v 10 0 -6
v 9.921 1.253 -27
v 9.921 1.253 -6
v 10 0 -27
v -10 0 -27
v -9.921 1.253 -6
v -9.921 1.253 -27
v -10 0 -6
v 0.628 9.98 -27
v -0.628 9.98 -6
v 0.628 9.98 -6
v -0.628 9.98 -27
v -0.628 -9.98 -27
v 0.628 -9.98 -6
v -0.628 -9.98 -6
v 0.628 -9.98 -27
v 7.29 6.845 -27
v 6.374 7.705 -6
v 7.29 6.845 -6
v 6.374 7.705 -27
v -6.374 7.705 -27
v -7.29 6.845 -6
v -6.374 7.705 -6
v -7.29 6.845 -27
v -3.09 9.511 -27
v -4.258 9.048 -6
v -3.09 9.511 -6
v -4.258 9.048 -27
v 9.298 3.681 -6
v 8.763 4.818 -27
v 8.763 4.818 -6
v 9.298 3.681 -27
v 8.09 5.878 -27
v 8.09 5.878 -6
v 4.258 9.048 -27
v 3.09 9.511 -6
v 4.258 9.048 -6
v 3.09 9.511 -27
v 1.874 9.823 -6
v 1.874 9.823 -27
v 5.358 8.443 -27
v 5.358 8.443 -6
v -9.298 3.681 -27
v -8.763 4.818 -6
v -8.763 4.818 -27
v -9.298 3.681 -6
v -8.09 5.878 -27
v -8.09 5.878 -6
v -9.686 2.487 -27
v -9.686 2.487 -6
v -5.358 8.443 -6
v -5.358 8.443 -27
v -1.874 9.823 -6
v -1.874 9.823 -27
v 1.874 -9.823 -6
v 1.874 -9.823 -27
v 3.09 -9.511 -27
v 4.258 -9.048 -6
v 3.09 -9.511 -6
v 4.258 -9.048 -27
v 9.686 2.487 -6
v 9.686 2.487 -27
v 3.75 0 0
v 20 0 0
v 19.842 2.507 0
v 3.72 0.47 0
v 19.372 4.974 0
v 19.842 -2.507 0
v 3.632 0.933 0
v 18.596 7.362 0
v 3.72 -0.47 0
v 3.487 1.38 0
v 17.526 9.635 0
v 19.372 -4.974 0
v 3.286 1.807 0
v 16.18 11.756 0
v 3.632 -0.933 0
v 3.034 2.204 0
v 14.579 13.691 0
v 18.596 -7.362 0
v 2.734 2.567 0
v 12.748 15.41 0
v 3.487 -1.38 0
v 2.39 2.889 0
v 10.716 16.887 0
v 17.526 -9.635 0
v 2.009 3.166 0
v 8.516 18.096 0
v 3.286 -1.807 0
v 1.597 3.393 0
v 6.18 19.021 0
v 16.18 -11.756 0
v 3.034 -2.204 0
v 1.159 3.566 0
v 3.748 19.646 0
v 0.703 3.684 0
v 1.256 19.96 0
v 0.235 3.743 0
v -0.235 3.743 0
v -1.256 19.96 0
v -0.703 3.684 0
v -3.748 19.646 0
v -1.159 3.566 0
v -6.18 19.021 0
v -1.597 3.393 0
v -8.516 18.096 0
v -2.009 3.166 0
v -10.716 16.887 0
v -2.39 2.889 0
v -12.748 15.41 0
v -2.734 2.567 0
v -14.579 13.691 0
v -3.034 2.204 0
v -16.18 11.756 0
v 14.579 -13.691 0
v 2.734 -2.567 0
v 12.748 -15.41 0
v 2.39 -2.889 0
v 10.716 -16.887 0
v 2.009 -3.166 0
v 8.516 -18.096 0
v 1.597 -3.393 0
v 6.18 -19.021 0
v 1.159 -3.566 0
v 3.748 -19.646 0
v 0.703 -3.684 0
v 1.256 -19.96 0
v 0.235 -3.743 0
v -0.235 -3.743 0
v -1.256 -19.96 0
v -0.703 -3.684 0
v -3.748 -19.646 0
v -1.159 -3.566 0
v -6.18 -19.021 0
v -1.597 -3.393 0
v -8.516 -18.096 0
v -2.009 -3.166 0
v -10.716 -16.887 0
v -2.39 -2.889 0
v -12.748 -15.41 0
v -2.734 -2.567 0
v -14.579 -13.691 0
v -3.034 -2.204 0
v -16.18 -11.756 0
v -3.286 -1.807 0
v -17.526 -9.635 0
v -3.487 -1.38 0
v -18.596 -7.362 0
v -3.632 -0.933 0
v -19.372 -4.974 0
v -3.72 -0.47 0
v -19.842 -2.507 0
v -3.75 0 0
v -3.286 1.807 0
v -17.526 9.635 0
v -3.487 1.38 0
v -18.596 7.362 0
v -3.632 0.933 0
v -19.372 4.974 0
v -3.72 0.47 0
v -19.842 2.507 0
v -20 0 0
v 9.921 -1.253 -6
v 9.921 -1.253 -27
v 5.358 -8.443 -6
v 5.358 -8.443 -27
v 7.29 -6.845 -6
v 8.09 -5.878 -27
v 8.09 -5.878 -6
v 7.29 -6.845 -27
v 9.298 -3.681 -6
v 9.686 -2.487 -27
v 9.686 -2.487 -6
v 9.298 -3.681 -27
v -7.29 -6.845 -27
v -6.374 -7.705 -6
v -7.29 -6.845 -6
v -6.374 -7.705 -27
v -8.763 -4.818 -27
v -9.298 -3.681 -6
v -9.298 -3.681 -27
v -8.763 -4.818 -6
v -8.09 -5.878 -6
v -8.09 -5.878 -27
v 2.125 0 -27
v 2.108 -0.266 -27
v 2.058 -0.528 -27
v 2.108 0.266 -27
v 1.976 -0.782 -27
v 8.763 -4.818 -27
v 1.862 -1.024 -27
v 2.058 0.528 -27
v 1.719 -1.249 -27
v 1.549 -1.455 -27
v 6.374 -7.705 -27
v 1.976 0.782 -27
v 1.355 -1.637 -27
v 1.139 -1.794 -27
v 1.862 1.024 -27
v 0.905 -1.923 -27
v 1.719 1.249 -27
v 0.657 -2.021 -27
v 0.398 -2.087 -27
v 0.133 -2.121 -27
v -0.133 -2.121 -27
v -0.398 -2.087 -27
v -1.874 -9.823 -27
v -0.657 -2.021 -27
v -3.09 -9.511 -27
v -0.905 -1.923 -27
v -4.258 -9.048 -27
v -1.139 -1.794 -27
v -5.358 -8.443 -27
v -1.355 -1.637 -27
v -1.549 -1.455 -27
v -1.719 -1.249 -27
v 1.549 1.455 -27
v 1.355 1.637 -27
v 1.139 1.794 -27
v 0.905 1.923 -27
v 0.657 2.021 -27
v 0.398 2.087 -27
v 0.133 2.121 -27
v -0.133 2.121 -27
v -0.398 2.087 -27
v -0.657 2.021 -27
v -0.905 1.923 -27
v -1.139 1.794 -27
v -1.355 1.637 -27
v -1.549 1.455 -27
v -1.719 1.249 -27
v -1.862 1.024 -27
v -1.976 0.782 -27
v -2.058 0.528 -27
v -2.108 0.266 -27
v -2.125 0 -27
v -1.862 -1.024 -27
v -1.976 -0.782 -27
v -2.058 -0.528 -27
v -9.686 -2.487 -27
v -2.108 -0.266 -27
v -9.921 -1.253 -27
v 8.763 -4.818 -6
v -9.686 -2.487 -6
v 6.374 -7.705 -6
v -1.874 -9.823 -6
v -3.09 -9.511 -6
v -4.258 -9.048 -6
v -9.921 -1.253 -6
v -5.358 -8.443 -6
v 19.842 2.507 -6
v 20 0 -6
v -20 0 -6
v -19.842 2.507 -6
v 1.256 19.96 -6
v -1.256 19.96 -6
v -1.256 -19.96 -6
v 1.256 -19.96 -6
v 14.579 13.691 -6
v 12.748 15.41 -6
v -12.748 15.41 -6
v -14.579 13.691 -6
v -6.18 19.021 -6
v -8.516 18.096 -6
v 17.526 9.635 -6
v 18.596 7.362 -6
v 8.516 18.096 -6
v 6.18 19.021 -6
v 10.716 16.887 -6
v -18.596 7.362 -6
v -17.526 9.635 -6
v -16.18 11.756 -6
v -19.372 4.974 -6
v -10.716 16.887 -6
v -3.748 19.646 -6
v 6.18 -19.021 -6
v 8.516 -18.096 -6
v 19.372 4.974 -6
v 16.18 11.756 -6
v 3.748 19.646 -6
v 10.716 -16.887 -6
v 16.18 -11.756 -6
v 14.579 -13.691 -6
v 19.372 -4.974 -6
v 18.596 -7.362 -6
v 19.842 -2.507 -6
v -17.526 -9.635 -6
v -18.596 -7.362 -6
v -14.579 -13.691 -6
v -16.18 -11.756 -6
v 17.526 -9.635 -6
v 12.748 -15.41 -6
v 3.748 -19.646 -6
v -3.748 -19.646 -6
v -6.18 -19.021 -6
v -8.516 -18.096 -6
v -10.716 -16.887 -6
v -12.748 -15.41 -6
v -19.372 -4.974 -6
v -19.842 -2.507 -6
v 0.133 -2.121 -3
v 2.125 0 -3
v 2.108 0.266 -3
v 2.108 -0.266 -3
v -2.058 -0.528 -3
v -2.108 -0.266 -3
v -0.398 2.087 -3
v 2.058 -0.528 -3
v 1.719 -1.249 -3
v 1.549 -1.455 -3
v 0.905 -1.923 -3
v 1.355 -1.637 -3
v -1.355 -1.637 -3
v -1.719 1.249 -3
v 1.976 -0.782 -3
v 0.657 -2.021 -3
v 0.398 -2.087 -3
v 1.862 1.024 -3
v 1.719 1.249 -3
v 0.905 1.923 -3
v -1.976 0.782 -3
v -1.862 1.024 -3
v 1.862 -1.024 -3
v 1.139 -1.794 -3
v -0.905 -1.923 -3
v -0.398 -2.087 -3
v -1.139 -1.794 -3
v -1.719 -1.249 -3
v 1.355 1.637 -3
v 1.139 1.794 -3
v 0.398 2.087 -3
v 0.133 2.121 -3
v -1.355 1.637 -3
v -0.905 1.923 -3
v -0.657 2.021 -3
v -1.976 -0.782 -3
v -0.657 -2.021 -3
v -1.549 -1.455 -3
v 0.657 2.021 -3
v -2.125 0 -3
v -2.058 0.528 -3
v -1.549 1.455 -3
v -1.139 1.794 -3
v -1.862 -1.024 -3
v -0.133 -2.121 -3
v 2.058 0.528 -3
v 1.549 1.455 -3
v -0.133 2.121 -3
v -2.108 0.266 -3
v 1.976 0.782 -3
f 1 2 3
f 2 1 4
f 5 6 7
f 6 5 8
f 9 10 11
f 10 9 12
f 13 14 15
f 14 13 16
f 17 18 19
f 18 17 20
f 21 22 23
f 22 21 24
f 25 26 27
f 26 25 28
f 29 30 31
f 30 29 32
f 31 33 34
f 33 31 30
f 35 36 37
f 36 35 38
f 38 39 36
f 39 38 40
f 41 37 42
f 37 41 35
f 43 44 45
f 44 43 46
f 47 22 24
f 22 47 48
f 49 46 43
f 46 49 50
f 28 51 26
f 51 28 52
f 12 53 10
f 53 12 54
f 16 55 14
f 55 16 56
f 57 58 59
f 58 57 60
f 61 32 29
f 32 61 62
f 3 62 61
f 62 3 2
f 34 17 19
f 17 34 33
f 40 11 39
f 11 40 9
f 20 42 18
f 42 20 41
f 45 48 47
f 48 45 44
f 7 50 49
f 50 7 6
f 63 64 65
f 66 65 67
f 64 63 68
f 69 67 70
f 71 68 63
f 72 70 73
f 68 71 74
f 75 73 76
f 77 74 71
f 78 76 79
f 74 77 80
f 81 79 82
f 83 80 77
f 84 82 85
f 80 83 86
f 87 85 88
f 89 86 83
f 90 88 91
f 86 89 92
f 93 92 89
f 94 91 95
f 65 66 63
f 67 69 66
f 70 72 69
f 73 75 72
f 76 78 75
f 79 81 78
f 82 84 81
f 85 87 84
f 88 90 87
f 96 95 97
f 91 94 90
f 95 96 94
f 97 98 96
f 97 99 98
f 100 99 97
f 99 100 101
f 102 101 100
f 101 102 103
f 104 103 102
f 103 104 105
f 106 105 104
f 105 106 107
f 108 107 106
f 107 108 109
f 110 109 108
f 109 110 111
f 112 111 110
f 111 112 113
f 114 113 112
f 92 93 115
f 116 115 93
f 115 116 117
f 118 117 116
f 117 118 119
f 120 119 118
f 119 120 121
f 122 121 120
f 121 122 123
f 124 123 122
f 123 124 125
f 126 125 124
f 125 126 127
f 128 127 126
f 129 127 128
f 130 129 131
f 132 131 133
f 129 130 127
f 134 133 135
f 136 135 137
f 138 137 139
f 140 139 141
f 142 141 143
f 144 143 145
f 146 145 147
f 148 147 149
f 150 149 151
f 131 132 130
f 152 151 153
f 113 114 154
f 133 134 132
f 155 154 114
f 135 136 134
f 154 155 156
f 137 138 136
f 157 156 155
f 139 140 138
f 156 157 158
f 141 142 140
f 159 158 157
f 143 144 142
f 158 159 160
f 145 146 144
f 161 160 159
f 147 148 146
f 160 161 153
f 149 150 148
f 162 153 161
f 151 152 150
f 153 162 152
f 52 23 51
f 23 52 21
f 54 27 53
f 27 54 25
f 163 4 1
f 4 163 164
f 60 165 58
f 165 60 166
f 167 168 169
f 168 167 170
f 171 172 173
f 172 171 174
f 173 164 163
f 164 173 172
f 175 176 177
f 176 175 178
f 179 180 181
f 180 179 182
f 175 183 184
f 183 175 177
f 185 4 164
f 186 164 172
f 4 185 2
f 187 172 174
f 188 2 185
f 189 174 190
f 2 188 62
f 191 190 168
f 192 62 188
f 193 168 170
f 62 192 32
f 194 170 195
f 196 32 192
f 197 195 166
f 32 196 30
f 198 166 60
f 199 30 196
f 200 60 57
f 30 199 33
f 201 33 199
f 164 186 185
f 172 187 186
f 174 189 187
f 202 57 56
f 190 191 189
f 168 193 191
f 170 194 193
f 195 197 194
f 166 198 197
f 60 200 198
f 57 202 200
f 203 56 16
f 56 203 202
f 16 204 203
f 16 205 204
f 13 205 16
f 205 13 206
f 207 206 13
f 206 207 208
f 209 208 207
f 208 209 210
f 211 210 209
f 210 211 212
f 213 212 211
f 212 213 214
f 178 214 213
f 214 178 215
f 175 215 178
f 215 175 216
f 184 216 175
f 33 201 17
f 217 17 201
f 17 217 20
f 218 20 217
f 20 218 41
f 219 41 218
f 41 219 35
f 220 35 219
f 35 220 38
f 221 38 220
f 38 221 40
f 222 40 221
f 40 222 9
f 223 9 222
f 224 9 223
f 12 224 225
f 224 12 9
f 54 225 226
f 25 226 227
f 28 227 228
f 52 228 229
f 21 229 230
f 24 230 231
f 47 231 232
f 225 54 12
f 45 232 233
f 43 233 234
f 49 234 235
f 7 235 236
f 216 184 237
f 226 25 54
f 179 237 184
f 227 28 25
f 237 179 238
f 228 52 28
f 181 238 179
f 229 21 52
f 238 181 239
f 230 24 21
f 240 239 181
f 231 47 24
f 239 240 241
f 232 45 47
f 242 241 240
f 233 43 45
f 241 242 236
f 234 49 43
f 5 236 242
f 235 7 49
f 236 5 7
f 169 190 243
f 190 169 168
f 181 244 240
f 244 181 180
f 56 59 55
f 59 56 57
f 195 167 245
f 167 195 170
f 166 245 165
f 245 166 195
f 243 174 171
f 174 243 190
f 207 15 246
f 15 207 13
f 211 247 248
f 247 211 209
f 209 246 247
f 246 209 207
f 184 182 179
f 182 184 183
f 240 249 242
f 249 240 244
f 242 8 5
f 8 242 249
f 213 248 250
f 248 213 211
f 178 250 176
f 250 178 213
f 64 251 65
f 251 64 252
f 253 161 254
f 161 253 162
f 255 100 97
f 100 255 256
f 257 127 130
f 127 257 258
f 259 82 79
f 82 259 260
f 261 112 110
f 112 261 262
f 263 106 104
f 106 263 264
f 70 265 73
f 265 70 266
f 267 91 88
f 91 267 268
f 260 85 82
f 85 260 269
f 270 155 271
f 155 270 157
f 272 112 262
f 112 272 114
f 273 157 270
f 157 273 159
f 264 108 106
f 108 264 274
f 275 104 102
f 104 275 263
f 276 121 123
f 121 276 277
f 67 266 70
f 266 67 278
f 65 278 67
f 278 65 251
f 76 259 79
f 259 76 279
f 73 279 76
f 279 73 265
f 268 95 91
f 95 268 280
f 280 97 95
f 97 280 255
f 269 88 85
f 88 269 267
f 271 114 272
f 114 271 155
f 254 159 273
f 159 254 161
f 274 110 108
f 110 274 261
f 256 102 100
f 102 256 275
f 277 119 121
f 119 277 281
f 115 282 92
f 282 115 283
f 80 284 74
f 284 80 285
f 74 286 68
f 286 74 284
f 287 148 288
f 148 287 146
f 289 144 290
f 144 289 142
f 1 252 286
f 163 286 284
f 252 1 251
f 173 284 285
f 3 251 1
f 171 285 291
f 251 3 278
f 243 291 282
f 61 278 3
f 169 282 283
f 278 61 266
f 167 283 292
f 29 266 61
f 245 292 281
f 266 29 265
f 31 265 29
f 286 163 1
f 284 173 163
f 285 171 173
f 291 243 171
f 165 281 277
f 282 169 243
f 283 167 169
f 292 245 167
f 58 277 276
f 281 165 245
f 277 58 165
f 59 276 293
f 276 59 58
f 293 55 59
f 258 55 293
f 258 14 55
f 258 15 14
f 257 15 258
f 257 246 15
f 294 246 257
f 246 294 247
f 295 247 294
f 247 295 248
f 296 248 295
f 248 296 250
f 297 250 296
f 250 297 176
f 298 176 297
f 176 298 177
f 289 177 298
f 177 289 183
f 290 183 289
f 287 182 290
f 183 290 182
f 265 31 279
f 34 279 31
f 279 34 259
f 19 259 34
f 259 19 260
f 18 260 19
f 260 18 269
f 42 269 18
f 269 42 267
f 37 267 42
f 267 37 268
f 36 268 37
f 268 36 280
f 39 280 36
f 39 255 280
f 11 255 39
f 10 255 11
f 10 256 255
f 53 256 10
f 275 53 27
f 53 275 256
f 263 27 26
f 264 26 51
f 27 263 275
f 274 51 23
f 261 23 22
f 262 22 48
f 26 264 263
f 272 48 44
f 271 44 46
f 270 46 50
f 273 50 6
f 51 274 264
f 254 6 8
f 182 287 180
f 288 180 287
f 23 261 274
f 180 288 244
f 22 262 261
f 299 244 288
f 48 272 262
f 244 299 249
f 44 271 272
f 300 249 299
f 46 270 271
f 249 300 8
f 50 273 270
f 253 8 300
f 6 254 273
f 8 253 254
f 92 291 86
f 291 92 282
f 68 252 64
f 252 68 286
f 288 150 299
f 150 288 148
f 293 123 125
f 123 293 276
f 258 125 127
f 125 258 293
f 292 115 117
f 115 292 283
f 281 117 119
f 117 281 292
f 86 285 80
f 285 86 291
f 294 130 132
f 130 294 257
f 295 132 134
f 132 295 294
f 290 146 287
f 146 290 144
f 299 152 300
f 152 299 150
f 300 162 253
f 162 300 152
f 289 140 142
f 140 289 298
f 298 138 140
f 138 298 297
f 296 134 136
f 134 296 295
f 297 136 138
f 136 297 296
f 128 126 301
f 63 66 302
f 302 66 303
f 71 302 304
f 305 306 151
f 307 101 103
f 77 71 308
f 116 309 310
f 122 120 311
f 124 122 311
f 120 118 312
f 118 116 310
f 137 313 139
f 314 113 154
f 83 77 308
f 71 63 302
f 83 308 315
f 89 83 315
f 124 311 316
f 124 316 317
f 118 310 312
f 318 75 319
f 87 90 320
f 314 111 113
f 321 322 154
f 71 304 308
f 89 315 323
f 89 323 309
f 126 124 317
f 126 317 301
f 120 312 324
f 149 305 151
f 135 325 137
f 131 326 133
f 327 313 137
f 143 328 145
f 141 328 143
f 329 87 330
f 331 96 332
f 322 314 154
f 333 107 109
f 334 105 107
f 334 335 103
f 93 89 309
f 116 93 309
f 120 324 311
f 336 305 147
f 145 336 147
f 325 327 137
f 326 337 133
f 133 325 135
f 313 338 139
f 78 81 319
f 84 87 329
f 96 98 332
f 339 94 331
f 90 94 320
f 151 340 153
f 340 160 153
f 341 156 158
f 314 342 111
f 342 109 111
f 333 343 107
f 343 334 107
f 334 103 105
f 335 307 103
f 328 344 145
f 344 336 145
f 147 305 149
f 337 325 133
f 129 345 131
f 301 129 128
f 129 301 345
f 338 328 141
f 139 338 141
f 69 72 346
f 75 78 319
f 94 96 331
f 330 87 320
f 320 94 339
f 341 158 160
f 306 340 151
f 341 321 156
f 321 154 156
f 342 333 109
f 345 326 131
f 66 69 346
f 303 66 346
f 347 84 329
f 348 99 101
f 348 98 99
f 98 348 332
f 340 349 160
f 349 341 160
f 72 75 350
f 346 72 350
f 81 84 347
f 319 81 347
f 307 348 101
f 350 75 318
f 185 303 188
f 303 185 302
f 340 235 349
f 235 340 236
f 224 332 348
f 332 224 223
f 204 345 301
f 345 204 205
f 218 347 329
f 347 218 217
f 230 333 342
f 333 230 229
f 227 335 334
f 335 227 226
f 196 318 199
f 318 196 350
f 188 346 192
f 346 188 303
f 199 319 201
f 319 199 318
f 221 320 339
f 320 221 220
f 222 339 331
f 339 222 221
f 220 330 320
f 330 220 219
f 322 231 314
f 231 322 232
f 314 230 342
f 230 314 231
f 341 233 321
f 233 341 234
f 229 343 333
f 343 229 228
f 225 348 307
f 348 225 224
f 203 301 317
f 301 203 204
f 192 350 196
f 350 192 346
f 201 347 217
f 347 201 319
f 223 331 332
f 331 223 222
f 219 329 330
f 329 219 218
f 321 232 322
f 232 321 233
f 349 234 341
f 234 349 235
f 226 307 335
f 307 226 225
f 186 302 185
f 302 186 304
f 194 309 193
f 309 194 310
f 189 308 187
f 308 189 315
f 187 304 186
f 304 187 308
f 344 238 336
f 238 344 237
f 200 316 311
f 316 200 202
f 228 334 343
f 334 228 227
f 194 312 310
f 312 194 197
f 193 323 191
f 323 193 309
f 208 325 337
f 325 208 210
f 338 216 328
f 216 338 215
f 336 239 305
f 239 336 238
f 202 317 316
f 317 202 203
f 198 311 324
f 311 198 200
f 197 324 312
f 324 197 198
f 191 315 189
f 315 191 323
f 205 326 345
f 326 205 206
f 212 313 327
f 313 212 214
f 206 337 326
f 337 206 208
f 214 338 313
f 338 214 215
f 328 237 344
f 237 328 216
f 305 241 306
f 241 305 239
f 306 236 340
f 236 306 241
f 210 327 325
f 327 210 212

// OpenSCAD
$fn = 50;


difference() {
	union() {
		translate(v = [0, 0, -27.0000000000]) {
			cylinder(h = 27, r = 10.0000000000);
		}
		translate(v = [0, 0, -6.0000000000]) {
			cylinder(h = 6, r = 20.0000000000);
		}
	}
	union() {
		translate(v = [0, 0, 0]) {
			rotate(a = [0, 0, 0]) {
				difference() {
					union() {
						#translate(v = [0, 0, -27.0000000000]) {
							cylinder(h = 27, r = 2.0000000000);
						}
						#translate(v = [0, 0, -3]) {
							cylinder(h = 3, r = 10.0000000000, r1 = 2.1250000000, r2 = 3.7500000000);
						}
						#translate(v = [0, 0, -27.0000000000]) {
							cylinder(h = 27, r = 2.1250000000);
						}
						#translate(v = [0, 0, -27.0000000000]) {
							cylinder(h = 27, r = 2.0000000000);
						}
					}
					union();
				}
			}
		}
	}
}
